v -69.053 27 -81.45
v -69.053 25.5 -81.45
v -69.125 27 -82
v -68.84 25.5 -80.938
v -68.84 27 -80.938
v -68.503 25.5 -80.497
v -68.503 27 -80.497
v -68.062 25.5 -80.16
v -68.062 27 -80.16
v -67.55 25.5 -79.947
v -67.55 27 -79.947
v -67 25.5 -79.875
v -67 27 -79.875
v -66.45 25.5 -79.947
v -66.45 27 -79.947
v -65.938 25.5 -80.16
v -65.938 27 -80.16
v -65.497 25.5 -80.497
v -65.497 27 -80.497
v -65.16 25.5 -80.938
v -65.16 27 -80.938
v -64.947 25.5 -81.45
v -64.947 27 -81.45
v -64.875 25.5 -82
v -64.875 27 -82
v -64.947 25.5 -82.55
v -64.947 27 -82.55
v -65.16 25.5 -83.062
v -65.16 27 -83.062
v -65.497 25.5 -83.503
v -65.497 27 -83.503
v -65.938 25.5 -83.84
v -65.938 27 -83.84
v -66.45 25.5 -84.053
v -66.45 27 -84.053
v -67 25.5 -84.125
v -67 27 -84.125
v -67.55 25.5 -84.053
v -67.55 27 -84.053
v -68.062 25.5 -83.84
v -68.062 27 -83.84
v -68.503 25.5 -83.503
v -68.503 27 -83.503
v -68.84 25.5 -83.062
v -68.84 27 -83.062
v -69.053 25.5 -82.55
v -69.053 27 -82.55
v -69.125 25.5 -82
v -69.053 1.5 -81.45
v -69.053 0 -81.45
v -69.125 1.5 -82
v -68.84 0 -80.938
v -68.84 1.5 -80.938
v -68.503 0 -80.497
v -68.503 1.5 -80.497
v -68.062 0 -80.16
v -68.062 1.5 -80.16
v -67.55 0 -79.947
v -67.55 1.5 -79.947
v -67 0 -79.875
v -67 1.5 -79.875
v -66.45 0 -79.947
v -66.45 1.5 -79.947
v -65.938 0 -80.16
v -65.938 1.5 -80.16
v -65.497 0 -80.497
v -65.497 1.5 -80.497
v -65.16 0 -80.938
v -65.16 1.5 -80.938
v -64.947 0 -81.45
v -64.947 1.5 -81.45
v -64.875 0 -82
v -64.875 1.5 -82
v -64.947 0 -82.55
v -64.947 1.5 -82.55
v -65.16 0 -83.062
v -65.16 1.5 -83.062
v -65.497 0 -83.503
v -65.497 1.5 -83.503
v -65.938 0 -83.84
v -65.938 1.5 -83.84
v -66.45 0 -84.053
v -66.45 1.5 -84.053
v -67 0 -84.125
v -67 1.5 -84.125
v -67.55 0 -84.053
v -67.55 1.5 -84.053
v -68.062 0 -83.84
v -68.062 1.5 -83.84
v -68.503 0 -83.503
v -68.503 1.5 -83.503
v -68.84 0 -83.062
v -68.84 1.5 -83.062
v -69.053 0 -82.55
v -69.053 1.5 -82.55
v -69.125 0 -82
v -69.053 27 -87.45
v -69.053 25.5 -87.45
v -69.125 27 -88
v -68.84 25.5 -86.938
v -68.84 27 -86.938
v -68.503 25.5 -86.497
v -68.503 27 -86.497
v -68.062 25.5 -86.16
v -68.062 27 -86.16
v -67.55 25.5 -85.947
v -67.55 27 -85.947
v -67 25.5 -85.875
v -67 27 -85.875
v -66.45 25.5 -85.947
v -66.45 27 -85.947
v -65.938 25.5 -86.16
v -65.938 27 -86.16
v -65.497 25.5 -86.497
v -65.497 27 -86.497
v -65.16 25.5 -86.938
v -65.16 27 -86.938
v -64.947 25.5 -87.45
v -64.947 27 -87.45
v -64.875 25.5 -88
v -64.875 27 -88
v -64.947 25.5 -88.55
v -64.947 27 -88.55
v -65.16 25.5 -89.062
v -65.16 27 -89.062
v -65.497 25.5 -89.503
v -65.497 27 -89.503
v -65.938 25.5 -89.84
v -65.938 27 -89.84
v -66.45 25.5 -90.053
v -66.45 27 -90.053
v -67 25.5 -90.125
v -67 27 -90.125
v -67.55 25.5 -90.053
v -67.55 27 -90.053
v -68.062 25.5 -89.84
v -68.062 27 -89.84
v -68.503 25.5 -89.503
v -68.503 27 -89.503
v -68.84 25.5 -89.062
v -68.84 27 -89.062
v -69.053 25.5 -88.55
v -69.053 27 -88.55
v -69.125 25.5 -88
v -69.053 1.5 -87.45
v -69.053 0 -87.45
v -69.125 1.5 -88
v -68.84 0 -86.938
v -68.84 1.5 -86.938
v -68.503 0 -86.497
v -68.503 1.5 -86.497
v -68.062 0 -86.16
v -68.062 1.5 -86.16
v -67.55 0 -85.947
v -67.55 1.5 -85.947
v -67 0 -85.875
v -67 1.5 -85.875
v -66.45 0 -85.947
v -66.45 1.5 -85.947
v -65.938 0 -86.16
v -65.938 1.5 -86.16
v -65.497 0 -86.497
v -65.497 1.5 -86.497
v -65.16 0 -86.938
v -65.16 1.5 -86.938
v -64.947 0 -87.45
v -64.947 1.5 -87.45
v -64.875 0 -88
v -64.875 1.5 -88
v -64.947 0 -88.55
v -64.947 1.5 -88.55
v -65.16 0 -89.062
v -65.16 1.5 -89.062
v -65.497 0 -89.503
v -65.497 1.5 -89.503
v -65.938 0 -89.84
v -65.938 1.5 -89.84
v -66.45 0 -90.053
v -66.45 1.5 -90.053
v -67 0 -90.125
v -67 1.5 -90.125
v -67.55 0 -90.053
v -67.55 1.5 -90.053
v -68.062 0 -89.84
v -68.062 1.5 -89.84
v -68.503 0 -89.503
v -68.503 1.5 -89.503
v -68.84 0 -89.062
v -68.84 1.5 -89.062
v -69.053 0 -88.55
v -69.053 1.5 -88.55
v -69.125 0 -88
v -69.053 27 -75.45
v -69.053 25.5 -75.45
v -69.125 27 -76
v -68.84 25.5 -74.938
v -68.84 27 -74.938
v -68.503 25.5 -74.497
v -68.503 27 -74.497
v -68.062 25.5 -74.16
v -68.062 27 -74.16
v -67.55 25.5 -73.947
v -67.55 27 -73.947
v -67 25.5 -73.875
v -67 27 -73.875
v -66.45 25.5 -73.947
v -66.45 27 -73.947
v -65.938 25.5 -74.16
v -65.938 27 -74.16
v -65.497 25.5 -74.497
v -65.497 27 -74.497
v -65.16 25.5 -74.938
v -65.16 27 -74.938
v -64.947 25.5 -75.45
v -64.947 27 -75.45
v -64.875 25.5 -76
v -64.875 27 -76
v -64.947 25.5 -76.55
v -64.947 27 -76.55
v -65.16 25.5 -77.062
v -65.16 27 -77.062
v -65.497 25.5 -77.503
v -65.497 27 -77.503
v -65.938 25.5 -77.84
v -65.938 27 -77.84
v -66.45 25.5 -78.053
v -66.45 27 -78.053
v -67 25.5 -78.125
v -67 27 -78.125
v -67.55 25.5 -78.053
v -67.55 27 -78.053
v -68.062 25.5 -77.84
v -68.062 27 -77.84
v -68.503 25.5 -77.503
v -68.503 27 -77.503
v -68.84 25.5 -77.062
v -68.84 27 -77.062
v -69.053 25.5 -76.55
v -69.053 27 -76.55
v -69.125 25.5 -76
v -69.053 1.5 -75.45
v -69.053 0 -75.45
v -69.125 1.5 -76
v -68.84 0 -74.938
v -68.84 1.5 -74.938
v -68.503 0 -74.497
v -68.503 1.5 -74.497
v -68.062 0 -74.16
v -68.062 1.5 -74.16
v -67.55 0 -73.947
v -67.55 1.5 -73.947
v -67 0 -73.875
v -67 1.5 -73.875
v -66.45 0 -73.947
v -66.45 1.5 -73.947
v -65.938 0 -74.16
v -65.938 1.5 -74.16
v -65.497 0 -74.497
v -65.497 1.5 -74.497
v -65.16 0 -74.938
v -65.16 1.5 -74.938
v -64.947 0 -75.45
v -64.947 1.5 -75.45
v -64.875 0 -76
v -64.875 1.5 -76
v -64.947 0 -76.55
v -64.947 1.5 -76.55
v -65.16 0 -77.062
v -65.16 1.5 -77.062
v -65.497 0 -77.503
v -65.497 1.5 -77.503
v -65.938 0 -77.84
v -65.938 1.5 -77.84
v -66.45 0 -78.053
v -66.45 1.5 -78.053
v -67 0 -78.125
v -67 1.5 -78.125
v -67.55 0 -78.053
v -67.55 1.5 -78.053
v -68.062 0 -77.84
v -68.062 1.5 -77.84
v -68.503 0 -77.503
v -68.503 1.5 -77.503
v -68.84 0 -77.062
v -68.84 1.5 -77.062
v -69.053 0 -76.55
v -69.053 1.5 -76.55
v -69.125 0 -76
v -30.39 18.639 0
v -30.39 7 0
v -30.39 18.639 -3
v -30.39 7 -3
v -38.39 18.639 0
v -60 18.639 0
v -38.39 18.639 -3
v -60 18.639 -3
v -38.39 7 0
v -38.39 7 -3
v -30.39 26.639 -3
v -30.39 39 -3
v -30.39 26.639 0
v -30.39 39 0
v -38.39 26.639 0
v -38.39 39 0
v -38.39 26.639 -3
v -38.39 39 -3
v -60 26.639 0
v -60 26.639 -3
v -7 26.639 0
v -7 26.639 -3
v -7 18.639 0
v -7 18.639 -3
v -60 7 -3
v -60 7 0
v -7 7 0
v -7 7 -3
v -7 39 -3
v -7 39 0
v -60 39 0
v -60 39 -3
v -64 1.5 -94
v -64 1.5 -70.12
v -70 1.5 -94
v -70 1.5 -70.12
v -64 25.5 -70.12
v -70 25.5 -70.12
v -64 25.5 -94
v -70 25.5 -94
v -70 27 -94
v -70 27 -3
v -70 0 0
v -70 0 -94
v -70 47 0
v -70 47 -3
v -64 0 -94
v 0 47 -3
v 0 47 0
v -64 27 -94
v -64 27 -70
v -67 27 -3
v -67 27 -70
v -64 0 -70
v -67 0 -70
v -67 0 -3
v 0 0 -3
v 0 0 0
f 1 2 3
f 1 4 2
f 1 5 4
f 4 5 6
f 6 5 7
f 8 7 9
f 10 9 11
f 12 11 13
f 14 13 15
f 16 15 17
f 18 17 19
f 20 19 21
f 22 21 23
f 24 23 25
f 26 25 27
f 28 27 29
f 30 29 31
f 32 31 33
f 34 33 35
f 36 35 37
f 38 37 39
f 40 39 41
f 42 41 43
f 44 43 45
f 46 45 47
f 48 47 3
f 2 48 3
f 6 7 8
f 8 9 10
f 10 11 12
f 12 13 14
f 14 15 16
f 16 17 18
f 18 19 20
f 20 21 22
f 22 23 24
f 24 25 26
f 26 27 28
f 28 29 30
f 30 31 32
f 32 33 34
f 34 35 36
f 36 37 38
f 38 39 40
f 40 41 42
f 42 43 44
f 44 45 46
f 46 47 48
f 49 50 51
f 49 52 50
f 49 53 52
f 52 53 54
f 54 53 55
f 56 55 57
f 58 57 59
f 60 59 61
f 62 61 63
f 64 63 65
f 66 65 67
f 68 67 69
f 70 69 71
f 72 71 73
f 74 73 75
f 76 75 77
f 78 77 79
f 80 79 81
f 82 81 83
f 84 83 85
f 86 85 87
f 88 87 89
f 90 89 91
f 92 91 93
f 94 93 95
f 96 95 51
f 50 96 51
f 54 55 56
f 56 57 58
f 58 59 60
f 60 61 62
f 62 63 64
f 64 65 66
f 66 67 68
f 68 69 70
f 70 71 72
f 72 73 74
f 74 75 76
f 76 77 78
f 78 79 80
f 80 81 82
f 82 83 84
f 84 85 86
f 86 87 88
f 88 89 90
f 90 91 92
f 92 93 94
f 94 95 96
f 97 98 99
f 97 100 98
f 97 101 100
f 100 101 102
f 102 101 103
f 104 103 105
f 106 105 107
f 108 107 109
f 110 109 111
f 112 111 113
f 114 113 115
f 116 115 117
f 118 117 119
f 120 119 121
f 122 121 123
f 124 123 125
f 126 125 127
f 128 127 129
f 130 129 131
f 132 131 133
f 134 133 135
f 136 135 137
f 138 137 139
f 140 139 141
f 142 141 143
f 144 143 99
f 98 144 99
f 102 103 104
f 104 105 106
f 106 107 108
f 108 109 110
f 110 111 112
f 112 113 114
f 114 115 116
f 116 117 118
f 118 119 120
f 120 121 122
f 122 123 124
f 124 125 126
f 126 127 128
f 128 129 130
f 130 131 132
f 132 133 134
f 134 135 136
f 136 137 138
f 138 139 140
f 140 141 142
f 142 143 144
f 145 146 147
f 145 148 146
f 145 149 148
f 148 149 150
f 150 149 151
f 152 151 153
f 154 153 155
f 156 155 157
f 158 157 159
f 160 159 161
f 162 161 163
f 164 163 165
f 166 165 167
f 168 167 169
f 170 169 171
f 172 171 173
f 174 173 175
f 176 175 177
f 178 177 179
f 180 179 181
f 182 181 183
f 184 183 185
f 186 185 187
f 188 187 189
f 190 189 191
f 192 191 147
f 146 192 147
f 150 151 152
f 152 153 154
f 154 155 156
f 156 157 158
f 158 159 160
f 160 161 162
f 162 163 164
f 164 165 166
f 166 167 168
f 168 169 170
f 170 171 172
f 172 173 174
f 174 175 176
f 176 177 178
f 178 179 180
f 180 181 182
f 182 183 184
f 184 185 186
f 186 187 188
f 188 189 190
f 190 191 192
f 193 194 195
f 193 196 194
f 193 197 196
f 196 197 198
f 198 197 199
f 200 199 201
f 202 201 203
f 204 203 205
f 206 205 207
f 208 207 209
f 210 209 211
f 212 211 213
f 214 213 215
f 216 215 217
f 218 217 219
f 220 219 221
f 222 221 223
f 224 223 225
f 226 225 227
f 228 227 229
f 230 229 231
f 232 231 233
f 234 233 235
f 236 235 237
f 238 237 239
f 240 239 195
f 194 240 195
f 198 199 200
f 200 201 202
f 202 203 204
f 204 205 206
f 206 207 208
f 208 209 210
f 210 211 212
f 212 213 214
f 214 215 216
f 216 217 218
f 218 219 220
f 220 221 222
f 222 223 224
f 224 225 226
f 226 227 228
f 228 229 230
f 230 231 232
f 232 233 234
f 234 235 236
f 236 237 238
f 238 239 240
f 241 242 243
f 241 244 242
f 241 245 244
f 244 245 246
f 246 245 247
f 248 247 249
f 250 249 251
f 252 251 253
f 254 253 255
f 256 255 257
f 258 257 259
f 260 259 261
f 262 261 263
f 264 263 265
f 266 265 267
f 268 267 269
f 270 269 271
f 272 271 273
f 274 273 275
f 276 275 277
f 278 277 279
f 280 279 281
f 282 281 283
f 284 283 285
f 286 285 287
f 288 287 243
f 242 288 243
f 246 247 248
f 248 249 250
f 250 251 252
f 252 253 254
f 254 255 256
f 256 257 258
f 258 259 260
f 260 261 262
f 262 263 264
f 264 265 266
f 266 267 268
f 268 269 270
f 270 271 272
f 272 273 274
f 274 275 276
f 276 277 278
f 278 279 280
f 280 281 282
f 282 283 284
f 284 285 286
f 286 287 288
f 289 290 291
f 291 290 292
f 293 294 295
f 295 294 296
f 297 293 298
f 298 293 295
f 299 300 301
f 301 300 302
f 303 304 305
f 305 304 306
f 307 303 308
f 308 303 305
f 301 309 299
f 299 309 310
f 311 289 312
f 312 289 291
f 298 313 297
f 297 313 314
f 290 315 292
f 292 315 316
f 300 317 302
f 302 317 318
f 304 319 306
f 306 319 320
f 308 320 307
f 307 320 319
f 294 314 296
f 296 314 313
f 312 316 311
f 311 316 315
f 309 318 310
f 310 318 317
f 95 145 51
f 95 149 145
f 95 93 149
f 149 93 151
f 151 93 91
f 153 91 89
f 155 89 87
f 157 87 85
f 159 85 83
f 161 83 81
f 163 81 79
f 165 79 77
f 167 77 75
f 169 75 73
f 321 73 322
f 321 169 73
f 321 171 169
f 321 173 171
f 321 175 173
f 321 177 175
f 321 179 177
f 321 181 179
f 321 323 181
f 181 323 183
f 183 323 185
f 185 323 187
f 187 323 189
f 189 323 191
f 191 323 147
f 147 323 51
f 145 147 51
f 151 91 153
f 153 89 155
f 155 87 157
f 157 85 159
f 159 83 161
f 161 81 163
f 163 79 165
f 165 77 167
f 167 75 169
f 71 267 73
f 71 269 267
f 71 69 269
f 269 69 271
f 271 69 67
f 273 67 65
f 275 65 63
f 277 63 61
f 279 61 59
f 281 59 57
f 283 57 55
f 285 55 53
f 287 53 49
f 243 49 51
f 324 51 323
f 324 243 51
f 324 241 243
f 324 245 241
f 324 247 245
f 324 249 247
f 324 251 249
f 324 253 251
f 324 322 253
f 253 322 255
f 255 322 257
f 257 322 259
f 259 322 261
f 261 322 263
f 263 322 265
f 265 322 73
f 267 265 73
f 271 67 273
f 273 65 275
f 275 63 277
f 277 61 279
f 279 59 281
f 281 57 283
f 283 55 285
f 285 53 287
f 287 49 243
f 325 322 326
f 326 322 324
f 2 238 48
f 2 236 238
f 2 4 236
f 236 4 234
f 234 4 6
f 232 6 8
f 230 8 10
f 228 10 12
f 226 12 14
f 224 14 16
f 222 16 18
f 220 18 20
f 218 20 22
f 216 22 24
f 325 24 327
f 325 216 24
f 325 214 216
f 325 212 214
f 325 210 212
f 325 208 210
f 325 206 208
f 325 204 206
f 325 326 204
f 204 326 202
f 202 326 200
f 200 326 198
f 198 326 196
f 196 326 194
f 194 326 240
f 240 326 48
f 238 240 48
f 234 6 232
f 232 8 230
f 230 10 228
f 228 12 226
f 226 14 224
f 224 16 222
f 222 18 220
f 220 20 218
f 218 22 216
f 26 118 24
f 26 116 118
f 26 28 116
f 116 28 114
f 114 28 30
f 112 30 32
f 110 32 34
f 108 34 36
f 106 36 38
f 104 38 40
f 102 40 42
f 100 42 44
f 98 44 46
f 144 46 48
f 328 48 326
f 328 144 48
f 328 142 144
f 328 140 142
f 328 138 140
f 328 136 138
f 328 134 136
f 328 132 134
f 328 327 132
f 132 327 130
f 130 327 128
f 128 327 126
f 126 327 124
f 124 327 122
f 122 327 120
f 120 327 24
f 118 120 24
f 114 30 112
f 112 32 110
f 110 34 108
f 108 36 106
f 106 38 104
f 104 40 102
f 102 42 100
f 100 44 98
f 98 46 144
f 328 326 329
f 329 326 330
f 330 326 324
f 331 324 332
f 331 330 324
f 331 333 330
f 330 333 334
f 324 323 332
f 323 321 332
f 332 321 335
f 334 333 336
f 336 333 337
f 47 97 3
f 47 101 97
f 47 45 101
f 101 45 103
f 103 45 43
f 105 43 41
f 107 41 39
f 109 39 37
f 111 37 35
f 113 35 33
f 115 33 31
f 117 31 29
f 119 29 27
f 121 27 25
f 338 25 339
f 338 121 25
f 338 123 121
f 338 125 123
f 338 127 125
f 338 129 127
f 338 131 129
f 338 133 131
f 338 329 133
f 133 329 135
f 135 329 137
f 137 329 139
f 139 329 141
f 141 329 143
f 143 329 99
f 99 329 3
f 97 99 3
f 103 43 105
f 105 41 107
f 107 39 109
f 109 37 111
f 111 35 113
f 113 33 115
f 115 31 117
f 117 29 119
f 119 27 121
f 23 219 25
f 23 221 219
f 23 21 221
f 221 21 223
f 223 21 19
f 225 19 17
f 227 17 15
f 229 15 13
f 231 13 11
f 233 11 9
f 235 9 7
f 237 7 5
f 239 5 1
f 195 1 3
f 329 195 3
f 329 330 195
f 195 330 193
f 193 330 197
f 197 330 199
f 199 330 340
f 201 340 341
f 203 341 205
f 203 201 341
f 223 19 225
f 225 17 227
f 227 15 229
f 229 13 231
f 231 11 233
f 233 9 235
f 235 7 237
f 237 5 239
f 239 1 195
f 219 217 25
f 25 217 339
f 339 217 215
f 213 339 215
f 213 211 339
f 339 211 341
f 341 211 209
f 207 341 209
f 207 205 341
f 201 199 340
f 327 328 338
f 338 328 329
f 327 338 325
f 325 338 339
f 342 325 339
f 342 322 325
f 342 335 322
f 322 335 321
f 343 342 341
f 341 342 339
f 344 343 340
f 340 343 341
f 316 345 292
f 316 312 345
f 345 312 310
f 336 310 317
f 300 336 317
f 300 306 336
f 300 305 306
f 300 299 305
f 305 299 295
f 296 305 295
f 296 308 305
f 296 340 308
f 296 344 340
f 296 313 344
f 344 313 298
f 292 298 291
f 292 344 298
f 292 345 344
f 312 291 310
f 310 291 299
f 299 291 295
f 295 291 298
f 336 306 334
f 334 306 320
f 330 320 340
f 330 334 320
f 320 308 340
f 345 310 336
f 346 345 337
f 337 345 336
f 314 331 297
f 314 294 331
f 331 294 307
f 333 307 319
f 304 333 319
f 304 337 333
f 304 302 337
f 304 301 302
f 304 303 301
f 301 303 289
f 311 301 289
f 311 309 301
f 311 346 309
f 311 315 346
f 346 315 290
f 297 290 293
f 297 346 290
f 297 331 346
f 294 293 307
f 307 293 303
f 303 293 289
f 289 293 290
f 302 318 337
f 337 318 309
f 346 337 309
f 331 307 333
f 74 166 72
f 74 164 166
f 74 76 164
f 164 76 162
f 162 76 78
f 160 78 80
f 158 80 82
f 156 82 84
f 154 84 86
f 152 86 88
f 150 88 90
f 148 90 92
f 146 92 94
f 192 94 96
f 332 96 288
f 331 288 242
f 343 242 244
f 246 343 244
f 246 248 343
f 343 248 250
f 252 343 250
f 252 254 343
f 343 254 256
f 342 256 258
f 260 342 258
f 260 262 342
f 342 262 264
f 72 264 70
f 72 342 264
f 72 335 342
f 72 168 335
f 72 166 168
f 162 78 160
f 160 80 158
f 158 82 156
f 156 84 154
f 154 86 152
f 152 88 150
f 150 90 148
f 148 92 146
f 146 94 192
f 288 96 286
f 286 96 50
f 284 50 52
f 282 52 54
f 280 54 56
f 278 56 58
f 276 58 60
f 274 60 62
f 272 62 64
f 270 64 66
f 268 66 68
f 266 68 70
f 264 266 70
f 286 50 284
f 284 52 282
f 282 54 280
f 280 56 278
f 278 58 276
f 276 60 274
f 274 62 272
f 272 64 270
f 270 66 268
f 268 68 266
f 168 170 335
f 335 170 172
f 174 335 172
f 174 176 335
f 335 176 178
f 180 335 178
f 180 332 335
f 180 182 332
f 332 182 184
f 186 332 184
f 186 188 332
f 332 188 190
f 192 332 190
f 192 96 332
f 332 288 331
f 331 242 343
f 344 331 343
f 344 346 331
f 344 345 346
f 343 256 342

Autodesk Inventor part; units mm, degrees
ref_plane "YZ Plane" through (0, 0, 0) normal (1, 0, 0) x (0, 1, 0)
ref_plane "XZ Plane" through (0, 0, 0) normal (0, 1, 0) x (-1, 0, 0)
ref_plane "XY Plane" through (0, 0, 0) normal (0, 0, 1) x (1, 0, 0)
sketch "Sketch3" plane through (0, 0, 0) normal (0, 1, 0) x (-1, 0, 0)
  line L0 (0, 0) -> (70, 0)
  line L1 (70, 0) -> (70, -70)
  line L2 (70, -70) -> (70, -94)
  line L3 (70, -94) -> (64, -94)
  line L4 (64, -94) -> (64, -70)
  line L5 (64, -3) -> (0, -3)
  line L6 (0, -3) -> (0, 0)
  line L7 (64, -70) -> (67, -70)
  line L8 (67, -70) -> (67, -3)
  line L9 (67, -3) -> (64, -3)
  circle A0 centre (67, -82) radius 2.125
  circle A1 centre (67, -76) radius 2.125
  circle A2 centre (67, -88) radius 2.125
  dimension "d26" = 70
  dimension "d27" = 70
  dimension "d29" = 6
  dimension "d55" = 4.25
  dimension "d56" = 4.25
  dimension "d57" = 4.25
  dimension "d59" = 6
  dimension "d60" = 6
  dimension "d61" = 6
extrude "Extrusion2" add sketch "Sketch3" along normal blind 27 contours L0 L1 L2 L3 L4 L7 L8 L9 L5 L6 | A0 | A1 | A2
sketch "Sketch4" plane through (0, 27, 0) normal (0, 1, 0) x (1, 0, 0)
  line L0 (-70, 0) -> (0, 0) projected
  line L1 (0, 0) -> (0, 3) projected
  line L2 (-70, 0) -> (0, 0)
  line L3 (0, 0) -> (0, 3)
  line L4 (0, 3) -> (-70, 3)
  line L5 (-70, 3) -> (-70, 0)
extrude "Extrusion3" add sketch "Sketch4" along normal blind 20
sketch "Sketch5" plane through (-70, 0, -94) normal (-1, 0, 0) x (0, 0, 1)
  line L0 (-0.1204, 1.5) -> (23.8796, 1.5)
  line L1 (23.8796, 1.5) -> (23.8796, 25.5)
  line L2 (23.8796, 25.5) -> (-0.1204, 25.5)
  line L3 (-0.1204, 25.5) -> (-0.1204, 1.5)
  line L4 (94, 0) -> (0, 0) projected
  dimension "d36" = 24
  dimension "d37" = 24
  dimension "d38" = 1.5
extrude "Extrusion4" cut sketch "Sketch5" against normal blind 10
sketch "Sketch9" plane through (0, 0, -3) normal (0, 0, -1) x (-1, 0, 0)
  line L0 (7, 7) -> (60, 7)
  line L1 (60, 7) -> (60, 39)
  line L2 (60, 39) -> (7, 39)
  line L3 (7, 39) -> (7, 7)
  line L4 (0, 0) -> (0, 47) projected
  line L5 (67, 0) -> (0, 0) projected
  dimension "d45" = 53
  dimension "d46" = 32
  dimension "d47" = 7
  dimension "d48" = 7
extrude "Extrusion5" cut sketch "Sketch9" against normal blind 10
sketch "Sketch10" plane through (-70, 0, 0) normal (0, 0, 1) x (1, 0, 0)
  line L0 (10, 39) -> (10, 7) projected
  line L1 (63, 7) -> (63, 39) projected
  line L2 (63, 26.6385) -> (63, 18.6385)
  line L3 (10, 18.6385) -> (10, 26.6385)
  line L4 (63, 39) -> (10, 39) projected
  line L5 (10, 7) -> (63, 7) projected
  line L6 (31.6097, 39) -> (39.6097, 39)
  line L7 (39.6097, 39) -> (39.6097, 7)
  line L8 (39.6097, 7) -> (31.6097, 7)
  line L9 (31.6097, 7) -> (31.6097, 18.6385)
  line L10 (31.6097, 26.6385) -> (31.6097, 39)
  line L11 (10, 26.6385) -> (31.6097, 26.6385)
  line L12 (39.6097, 26.6385) -> (63, 26.6385)
  line L13 (63, 18.6385) -> (39.6097, 18.6385)
  line L14 (31.6097, 18.6385) -> (10, 18.6385)
  point P0 (70, 0)
  dimension "d51" = 8
  dimension "d52" = 8
extrude "Extrusion6" add sketch "Sketch10" against normal blind 3 contours L11 L10 L4 L7 L5 L9 L14 L0 | L12 L1 L13 L7
sketch "Sketch11" plane through (0, 0, 0) normal (0, -1, 0) x (1, 0, 0)
  point P0 (0, 0)
sketch "Sketch12" plane through (0, 0, 0) normal (0, -1, 0) x (1, 0, 0)
  circle A0 centre (-67, -82) radius 2.125
  circle A1 centre (-67, -76) radius 2.125
  circle A2 centre (-67, -88) radius 2.125
  line L0 (-64, -70) -> (-67, -70) projected
  point P0 (0, 0)
  dimension "d62" = 4.25
  dimension "d63" = 4.25
  dimension "d64" = 4.25
  dimension "d65" = 6
  dimension "d66" = 6
  dimension "d67" = 6
hole "Hole2" at (-67, 0, -88) at (-67, 0, -82) at (-67, 0, -76) direction (0, 1, 0) diameter 4.25 end through all
sketch "Sketch13" plane through (-70, 0, -94) normal (-1, 0, 0) x (0, 0, 1)
  point P0 (94, 0)
properties part number "GrapperRight"
